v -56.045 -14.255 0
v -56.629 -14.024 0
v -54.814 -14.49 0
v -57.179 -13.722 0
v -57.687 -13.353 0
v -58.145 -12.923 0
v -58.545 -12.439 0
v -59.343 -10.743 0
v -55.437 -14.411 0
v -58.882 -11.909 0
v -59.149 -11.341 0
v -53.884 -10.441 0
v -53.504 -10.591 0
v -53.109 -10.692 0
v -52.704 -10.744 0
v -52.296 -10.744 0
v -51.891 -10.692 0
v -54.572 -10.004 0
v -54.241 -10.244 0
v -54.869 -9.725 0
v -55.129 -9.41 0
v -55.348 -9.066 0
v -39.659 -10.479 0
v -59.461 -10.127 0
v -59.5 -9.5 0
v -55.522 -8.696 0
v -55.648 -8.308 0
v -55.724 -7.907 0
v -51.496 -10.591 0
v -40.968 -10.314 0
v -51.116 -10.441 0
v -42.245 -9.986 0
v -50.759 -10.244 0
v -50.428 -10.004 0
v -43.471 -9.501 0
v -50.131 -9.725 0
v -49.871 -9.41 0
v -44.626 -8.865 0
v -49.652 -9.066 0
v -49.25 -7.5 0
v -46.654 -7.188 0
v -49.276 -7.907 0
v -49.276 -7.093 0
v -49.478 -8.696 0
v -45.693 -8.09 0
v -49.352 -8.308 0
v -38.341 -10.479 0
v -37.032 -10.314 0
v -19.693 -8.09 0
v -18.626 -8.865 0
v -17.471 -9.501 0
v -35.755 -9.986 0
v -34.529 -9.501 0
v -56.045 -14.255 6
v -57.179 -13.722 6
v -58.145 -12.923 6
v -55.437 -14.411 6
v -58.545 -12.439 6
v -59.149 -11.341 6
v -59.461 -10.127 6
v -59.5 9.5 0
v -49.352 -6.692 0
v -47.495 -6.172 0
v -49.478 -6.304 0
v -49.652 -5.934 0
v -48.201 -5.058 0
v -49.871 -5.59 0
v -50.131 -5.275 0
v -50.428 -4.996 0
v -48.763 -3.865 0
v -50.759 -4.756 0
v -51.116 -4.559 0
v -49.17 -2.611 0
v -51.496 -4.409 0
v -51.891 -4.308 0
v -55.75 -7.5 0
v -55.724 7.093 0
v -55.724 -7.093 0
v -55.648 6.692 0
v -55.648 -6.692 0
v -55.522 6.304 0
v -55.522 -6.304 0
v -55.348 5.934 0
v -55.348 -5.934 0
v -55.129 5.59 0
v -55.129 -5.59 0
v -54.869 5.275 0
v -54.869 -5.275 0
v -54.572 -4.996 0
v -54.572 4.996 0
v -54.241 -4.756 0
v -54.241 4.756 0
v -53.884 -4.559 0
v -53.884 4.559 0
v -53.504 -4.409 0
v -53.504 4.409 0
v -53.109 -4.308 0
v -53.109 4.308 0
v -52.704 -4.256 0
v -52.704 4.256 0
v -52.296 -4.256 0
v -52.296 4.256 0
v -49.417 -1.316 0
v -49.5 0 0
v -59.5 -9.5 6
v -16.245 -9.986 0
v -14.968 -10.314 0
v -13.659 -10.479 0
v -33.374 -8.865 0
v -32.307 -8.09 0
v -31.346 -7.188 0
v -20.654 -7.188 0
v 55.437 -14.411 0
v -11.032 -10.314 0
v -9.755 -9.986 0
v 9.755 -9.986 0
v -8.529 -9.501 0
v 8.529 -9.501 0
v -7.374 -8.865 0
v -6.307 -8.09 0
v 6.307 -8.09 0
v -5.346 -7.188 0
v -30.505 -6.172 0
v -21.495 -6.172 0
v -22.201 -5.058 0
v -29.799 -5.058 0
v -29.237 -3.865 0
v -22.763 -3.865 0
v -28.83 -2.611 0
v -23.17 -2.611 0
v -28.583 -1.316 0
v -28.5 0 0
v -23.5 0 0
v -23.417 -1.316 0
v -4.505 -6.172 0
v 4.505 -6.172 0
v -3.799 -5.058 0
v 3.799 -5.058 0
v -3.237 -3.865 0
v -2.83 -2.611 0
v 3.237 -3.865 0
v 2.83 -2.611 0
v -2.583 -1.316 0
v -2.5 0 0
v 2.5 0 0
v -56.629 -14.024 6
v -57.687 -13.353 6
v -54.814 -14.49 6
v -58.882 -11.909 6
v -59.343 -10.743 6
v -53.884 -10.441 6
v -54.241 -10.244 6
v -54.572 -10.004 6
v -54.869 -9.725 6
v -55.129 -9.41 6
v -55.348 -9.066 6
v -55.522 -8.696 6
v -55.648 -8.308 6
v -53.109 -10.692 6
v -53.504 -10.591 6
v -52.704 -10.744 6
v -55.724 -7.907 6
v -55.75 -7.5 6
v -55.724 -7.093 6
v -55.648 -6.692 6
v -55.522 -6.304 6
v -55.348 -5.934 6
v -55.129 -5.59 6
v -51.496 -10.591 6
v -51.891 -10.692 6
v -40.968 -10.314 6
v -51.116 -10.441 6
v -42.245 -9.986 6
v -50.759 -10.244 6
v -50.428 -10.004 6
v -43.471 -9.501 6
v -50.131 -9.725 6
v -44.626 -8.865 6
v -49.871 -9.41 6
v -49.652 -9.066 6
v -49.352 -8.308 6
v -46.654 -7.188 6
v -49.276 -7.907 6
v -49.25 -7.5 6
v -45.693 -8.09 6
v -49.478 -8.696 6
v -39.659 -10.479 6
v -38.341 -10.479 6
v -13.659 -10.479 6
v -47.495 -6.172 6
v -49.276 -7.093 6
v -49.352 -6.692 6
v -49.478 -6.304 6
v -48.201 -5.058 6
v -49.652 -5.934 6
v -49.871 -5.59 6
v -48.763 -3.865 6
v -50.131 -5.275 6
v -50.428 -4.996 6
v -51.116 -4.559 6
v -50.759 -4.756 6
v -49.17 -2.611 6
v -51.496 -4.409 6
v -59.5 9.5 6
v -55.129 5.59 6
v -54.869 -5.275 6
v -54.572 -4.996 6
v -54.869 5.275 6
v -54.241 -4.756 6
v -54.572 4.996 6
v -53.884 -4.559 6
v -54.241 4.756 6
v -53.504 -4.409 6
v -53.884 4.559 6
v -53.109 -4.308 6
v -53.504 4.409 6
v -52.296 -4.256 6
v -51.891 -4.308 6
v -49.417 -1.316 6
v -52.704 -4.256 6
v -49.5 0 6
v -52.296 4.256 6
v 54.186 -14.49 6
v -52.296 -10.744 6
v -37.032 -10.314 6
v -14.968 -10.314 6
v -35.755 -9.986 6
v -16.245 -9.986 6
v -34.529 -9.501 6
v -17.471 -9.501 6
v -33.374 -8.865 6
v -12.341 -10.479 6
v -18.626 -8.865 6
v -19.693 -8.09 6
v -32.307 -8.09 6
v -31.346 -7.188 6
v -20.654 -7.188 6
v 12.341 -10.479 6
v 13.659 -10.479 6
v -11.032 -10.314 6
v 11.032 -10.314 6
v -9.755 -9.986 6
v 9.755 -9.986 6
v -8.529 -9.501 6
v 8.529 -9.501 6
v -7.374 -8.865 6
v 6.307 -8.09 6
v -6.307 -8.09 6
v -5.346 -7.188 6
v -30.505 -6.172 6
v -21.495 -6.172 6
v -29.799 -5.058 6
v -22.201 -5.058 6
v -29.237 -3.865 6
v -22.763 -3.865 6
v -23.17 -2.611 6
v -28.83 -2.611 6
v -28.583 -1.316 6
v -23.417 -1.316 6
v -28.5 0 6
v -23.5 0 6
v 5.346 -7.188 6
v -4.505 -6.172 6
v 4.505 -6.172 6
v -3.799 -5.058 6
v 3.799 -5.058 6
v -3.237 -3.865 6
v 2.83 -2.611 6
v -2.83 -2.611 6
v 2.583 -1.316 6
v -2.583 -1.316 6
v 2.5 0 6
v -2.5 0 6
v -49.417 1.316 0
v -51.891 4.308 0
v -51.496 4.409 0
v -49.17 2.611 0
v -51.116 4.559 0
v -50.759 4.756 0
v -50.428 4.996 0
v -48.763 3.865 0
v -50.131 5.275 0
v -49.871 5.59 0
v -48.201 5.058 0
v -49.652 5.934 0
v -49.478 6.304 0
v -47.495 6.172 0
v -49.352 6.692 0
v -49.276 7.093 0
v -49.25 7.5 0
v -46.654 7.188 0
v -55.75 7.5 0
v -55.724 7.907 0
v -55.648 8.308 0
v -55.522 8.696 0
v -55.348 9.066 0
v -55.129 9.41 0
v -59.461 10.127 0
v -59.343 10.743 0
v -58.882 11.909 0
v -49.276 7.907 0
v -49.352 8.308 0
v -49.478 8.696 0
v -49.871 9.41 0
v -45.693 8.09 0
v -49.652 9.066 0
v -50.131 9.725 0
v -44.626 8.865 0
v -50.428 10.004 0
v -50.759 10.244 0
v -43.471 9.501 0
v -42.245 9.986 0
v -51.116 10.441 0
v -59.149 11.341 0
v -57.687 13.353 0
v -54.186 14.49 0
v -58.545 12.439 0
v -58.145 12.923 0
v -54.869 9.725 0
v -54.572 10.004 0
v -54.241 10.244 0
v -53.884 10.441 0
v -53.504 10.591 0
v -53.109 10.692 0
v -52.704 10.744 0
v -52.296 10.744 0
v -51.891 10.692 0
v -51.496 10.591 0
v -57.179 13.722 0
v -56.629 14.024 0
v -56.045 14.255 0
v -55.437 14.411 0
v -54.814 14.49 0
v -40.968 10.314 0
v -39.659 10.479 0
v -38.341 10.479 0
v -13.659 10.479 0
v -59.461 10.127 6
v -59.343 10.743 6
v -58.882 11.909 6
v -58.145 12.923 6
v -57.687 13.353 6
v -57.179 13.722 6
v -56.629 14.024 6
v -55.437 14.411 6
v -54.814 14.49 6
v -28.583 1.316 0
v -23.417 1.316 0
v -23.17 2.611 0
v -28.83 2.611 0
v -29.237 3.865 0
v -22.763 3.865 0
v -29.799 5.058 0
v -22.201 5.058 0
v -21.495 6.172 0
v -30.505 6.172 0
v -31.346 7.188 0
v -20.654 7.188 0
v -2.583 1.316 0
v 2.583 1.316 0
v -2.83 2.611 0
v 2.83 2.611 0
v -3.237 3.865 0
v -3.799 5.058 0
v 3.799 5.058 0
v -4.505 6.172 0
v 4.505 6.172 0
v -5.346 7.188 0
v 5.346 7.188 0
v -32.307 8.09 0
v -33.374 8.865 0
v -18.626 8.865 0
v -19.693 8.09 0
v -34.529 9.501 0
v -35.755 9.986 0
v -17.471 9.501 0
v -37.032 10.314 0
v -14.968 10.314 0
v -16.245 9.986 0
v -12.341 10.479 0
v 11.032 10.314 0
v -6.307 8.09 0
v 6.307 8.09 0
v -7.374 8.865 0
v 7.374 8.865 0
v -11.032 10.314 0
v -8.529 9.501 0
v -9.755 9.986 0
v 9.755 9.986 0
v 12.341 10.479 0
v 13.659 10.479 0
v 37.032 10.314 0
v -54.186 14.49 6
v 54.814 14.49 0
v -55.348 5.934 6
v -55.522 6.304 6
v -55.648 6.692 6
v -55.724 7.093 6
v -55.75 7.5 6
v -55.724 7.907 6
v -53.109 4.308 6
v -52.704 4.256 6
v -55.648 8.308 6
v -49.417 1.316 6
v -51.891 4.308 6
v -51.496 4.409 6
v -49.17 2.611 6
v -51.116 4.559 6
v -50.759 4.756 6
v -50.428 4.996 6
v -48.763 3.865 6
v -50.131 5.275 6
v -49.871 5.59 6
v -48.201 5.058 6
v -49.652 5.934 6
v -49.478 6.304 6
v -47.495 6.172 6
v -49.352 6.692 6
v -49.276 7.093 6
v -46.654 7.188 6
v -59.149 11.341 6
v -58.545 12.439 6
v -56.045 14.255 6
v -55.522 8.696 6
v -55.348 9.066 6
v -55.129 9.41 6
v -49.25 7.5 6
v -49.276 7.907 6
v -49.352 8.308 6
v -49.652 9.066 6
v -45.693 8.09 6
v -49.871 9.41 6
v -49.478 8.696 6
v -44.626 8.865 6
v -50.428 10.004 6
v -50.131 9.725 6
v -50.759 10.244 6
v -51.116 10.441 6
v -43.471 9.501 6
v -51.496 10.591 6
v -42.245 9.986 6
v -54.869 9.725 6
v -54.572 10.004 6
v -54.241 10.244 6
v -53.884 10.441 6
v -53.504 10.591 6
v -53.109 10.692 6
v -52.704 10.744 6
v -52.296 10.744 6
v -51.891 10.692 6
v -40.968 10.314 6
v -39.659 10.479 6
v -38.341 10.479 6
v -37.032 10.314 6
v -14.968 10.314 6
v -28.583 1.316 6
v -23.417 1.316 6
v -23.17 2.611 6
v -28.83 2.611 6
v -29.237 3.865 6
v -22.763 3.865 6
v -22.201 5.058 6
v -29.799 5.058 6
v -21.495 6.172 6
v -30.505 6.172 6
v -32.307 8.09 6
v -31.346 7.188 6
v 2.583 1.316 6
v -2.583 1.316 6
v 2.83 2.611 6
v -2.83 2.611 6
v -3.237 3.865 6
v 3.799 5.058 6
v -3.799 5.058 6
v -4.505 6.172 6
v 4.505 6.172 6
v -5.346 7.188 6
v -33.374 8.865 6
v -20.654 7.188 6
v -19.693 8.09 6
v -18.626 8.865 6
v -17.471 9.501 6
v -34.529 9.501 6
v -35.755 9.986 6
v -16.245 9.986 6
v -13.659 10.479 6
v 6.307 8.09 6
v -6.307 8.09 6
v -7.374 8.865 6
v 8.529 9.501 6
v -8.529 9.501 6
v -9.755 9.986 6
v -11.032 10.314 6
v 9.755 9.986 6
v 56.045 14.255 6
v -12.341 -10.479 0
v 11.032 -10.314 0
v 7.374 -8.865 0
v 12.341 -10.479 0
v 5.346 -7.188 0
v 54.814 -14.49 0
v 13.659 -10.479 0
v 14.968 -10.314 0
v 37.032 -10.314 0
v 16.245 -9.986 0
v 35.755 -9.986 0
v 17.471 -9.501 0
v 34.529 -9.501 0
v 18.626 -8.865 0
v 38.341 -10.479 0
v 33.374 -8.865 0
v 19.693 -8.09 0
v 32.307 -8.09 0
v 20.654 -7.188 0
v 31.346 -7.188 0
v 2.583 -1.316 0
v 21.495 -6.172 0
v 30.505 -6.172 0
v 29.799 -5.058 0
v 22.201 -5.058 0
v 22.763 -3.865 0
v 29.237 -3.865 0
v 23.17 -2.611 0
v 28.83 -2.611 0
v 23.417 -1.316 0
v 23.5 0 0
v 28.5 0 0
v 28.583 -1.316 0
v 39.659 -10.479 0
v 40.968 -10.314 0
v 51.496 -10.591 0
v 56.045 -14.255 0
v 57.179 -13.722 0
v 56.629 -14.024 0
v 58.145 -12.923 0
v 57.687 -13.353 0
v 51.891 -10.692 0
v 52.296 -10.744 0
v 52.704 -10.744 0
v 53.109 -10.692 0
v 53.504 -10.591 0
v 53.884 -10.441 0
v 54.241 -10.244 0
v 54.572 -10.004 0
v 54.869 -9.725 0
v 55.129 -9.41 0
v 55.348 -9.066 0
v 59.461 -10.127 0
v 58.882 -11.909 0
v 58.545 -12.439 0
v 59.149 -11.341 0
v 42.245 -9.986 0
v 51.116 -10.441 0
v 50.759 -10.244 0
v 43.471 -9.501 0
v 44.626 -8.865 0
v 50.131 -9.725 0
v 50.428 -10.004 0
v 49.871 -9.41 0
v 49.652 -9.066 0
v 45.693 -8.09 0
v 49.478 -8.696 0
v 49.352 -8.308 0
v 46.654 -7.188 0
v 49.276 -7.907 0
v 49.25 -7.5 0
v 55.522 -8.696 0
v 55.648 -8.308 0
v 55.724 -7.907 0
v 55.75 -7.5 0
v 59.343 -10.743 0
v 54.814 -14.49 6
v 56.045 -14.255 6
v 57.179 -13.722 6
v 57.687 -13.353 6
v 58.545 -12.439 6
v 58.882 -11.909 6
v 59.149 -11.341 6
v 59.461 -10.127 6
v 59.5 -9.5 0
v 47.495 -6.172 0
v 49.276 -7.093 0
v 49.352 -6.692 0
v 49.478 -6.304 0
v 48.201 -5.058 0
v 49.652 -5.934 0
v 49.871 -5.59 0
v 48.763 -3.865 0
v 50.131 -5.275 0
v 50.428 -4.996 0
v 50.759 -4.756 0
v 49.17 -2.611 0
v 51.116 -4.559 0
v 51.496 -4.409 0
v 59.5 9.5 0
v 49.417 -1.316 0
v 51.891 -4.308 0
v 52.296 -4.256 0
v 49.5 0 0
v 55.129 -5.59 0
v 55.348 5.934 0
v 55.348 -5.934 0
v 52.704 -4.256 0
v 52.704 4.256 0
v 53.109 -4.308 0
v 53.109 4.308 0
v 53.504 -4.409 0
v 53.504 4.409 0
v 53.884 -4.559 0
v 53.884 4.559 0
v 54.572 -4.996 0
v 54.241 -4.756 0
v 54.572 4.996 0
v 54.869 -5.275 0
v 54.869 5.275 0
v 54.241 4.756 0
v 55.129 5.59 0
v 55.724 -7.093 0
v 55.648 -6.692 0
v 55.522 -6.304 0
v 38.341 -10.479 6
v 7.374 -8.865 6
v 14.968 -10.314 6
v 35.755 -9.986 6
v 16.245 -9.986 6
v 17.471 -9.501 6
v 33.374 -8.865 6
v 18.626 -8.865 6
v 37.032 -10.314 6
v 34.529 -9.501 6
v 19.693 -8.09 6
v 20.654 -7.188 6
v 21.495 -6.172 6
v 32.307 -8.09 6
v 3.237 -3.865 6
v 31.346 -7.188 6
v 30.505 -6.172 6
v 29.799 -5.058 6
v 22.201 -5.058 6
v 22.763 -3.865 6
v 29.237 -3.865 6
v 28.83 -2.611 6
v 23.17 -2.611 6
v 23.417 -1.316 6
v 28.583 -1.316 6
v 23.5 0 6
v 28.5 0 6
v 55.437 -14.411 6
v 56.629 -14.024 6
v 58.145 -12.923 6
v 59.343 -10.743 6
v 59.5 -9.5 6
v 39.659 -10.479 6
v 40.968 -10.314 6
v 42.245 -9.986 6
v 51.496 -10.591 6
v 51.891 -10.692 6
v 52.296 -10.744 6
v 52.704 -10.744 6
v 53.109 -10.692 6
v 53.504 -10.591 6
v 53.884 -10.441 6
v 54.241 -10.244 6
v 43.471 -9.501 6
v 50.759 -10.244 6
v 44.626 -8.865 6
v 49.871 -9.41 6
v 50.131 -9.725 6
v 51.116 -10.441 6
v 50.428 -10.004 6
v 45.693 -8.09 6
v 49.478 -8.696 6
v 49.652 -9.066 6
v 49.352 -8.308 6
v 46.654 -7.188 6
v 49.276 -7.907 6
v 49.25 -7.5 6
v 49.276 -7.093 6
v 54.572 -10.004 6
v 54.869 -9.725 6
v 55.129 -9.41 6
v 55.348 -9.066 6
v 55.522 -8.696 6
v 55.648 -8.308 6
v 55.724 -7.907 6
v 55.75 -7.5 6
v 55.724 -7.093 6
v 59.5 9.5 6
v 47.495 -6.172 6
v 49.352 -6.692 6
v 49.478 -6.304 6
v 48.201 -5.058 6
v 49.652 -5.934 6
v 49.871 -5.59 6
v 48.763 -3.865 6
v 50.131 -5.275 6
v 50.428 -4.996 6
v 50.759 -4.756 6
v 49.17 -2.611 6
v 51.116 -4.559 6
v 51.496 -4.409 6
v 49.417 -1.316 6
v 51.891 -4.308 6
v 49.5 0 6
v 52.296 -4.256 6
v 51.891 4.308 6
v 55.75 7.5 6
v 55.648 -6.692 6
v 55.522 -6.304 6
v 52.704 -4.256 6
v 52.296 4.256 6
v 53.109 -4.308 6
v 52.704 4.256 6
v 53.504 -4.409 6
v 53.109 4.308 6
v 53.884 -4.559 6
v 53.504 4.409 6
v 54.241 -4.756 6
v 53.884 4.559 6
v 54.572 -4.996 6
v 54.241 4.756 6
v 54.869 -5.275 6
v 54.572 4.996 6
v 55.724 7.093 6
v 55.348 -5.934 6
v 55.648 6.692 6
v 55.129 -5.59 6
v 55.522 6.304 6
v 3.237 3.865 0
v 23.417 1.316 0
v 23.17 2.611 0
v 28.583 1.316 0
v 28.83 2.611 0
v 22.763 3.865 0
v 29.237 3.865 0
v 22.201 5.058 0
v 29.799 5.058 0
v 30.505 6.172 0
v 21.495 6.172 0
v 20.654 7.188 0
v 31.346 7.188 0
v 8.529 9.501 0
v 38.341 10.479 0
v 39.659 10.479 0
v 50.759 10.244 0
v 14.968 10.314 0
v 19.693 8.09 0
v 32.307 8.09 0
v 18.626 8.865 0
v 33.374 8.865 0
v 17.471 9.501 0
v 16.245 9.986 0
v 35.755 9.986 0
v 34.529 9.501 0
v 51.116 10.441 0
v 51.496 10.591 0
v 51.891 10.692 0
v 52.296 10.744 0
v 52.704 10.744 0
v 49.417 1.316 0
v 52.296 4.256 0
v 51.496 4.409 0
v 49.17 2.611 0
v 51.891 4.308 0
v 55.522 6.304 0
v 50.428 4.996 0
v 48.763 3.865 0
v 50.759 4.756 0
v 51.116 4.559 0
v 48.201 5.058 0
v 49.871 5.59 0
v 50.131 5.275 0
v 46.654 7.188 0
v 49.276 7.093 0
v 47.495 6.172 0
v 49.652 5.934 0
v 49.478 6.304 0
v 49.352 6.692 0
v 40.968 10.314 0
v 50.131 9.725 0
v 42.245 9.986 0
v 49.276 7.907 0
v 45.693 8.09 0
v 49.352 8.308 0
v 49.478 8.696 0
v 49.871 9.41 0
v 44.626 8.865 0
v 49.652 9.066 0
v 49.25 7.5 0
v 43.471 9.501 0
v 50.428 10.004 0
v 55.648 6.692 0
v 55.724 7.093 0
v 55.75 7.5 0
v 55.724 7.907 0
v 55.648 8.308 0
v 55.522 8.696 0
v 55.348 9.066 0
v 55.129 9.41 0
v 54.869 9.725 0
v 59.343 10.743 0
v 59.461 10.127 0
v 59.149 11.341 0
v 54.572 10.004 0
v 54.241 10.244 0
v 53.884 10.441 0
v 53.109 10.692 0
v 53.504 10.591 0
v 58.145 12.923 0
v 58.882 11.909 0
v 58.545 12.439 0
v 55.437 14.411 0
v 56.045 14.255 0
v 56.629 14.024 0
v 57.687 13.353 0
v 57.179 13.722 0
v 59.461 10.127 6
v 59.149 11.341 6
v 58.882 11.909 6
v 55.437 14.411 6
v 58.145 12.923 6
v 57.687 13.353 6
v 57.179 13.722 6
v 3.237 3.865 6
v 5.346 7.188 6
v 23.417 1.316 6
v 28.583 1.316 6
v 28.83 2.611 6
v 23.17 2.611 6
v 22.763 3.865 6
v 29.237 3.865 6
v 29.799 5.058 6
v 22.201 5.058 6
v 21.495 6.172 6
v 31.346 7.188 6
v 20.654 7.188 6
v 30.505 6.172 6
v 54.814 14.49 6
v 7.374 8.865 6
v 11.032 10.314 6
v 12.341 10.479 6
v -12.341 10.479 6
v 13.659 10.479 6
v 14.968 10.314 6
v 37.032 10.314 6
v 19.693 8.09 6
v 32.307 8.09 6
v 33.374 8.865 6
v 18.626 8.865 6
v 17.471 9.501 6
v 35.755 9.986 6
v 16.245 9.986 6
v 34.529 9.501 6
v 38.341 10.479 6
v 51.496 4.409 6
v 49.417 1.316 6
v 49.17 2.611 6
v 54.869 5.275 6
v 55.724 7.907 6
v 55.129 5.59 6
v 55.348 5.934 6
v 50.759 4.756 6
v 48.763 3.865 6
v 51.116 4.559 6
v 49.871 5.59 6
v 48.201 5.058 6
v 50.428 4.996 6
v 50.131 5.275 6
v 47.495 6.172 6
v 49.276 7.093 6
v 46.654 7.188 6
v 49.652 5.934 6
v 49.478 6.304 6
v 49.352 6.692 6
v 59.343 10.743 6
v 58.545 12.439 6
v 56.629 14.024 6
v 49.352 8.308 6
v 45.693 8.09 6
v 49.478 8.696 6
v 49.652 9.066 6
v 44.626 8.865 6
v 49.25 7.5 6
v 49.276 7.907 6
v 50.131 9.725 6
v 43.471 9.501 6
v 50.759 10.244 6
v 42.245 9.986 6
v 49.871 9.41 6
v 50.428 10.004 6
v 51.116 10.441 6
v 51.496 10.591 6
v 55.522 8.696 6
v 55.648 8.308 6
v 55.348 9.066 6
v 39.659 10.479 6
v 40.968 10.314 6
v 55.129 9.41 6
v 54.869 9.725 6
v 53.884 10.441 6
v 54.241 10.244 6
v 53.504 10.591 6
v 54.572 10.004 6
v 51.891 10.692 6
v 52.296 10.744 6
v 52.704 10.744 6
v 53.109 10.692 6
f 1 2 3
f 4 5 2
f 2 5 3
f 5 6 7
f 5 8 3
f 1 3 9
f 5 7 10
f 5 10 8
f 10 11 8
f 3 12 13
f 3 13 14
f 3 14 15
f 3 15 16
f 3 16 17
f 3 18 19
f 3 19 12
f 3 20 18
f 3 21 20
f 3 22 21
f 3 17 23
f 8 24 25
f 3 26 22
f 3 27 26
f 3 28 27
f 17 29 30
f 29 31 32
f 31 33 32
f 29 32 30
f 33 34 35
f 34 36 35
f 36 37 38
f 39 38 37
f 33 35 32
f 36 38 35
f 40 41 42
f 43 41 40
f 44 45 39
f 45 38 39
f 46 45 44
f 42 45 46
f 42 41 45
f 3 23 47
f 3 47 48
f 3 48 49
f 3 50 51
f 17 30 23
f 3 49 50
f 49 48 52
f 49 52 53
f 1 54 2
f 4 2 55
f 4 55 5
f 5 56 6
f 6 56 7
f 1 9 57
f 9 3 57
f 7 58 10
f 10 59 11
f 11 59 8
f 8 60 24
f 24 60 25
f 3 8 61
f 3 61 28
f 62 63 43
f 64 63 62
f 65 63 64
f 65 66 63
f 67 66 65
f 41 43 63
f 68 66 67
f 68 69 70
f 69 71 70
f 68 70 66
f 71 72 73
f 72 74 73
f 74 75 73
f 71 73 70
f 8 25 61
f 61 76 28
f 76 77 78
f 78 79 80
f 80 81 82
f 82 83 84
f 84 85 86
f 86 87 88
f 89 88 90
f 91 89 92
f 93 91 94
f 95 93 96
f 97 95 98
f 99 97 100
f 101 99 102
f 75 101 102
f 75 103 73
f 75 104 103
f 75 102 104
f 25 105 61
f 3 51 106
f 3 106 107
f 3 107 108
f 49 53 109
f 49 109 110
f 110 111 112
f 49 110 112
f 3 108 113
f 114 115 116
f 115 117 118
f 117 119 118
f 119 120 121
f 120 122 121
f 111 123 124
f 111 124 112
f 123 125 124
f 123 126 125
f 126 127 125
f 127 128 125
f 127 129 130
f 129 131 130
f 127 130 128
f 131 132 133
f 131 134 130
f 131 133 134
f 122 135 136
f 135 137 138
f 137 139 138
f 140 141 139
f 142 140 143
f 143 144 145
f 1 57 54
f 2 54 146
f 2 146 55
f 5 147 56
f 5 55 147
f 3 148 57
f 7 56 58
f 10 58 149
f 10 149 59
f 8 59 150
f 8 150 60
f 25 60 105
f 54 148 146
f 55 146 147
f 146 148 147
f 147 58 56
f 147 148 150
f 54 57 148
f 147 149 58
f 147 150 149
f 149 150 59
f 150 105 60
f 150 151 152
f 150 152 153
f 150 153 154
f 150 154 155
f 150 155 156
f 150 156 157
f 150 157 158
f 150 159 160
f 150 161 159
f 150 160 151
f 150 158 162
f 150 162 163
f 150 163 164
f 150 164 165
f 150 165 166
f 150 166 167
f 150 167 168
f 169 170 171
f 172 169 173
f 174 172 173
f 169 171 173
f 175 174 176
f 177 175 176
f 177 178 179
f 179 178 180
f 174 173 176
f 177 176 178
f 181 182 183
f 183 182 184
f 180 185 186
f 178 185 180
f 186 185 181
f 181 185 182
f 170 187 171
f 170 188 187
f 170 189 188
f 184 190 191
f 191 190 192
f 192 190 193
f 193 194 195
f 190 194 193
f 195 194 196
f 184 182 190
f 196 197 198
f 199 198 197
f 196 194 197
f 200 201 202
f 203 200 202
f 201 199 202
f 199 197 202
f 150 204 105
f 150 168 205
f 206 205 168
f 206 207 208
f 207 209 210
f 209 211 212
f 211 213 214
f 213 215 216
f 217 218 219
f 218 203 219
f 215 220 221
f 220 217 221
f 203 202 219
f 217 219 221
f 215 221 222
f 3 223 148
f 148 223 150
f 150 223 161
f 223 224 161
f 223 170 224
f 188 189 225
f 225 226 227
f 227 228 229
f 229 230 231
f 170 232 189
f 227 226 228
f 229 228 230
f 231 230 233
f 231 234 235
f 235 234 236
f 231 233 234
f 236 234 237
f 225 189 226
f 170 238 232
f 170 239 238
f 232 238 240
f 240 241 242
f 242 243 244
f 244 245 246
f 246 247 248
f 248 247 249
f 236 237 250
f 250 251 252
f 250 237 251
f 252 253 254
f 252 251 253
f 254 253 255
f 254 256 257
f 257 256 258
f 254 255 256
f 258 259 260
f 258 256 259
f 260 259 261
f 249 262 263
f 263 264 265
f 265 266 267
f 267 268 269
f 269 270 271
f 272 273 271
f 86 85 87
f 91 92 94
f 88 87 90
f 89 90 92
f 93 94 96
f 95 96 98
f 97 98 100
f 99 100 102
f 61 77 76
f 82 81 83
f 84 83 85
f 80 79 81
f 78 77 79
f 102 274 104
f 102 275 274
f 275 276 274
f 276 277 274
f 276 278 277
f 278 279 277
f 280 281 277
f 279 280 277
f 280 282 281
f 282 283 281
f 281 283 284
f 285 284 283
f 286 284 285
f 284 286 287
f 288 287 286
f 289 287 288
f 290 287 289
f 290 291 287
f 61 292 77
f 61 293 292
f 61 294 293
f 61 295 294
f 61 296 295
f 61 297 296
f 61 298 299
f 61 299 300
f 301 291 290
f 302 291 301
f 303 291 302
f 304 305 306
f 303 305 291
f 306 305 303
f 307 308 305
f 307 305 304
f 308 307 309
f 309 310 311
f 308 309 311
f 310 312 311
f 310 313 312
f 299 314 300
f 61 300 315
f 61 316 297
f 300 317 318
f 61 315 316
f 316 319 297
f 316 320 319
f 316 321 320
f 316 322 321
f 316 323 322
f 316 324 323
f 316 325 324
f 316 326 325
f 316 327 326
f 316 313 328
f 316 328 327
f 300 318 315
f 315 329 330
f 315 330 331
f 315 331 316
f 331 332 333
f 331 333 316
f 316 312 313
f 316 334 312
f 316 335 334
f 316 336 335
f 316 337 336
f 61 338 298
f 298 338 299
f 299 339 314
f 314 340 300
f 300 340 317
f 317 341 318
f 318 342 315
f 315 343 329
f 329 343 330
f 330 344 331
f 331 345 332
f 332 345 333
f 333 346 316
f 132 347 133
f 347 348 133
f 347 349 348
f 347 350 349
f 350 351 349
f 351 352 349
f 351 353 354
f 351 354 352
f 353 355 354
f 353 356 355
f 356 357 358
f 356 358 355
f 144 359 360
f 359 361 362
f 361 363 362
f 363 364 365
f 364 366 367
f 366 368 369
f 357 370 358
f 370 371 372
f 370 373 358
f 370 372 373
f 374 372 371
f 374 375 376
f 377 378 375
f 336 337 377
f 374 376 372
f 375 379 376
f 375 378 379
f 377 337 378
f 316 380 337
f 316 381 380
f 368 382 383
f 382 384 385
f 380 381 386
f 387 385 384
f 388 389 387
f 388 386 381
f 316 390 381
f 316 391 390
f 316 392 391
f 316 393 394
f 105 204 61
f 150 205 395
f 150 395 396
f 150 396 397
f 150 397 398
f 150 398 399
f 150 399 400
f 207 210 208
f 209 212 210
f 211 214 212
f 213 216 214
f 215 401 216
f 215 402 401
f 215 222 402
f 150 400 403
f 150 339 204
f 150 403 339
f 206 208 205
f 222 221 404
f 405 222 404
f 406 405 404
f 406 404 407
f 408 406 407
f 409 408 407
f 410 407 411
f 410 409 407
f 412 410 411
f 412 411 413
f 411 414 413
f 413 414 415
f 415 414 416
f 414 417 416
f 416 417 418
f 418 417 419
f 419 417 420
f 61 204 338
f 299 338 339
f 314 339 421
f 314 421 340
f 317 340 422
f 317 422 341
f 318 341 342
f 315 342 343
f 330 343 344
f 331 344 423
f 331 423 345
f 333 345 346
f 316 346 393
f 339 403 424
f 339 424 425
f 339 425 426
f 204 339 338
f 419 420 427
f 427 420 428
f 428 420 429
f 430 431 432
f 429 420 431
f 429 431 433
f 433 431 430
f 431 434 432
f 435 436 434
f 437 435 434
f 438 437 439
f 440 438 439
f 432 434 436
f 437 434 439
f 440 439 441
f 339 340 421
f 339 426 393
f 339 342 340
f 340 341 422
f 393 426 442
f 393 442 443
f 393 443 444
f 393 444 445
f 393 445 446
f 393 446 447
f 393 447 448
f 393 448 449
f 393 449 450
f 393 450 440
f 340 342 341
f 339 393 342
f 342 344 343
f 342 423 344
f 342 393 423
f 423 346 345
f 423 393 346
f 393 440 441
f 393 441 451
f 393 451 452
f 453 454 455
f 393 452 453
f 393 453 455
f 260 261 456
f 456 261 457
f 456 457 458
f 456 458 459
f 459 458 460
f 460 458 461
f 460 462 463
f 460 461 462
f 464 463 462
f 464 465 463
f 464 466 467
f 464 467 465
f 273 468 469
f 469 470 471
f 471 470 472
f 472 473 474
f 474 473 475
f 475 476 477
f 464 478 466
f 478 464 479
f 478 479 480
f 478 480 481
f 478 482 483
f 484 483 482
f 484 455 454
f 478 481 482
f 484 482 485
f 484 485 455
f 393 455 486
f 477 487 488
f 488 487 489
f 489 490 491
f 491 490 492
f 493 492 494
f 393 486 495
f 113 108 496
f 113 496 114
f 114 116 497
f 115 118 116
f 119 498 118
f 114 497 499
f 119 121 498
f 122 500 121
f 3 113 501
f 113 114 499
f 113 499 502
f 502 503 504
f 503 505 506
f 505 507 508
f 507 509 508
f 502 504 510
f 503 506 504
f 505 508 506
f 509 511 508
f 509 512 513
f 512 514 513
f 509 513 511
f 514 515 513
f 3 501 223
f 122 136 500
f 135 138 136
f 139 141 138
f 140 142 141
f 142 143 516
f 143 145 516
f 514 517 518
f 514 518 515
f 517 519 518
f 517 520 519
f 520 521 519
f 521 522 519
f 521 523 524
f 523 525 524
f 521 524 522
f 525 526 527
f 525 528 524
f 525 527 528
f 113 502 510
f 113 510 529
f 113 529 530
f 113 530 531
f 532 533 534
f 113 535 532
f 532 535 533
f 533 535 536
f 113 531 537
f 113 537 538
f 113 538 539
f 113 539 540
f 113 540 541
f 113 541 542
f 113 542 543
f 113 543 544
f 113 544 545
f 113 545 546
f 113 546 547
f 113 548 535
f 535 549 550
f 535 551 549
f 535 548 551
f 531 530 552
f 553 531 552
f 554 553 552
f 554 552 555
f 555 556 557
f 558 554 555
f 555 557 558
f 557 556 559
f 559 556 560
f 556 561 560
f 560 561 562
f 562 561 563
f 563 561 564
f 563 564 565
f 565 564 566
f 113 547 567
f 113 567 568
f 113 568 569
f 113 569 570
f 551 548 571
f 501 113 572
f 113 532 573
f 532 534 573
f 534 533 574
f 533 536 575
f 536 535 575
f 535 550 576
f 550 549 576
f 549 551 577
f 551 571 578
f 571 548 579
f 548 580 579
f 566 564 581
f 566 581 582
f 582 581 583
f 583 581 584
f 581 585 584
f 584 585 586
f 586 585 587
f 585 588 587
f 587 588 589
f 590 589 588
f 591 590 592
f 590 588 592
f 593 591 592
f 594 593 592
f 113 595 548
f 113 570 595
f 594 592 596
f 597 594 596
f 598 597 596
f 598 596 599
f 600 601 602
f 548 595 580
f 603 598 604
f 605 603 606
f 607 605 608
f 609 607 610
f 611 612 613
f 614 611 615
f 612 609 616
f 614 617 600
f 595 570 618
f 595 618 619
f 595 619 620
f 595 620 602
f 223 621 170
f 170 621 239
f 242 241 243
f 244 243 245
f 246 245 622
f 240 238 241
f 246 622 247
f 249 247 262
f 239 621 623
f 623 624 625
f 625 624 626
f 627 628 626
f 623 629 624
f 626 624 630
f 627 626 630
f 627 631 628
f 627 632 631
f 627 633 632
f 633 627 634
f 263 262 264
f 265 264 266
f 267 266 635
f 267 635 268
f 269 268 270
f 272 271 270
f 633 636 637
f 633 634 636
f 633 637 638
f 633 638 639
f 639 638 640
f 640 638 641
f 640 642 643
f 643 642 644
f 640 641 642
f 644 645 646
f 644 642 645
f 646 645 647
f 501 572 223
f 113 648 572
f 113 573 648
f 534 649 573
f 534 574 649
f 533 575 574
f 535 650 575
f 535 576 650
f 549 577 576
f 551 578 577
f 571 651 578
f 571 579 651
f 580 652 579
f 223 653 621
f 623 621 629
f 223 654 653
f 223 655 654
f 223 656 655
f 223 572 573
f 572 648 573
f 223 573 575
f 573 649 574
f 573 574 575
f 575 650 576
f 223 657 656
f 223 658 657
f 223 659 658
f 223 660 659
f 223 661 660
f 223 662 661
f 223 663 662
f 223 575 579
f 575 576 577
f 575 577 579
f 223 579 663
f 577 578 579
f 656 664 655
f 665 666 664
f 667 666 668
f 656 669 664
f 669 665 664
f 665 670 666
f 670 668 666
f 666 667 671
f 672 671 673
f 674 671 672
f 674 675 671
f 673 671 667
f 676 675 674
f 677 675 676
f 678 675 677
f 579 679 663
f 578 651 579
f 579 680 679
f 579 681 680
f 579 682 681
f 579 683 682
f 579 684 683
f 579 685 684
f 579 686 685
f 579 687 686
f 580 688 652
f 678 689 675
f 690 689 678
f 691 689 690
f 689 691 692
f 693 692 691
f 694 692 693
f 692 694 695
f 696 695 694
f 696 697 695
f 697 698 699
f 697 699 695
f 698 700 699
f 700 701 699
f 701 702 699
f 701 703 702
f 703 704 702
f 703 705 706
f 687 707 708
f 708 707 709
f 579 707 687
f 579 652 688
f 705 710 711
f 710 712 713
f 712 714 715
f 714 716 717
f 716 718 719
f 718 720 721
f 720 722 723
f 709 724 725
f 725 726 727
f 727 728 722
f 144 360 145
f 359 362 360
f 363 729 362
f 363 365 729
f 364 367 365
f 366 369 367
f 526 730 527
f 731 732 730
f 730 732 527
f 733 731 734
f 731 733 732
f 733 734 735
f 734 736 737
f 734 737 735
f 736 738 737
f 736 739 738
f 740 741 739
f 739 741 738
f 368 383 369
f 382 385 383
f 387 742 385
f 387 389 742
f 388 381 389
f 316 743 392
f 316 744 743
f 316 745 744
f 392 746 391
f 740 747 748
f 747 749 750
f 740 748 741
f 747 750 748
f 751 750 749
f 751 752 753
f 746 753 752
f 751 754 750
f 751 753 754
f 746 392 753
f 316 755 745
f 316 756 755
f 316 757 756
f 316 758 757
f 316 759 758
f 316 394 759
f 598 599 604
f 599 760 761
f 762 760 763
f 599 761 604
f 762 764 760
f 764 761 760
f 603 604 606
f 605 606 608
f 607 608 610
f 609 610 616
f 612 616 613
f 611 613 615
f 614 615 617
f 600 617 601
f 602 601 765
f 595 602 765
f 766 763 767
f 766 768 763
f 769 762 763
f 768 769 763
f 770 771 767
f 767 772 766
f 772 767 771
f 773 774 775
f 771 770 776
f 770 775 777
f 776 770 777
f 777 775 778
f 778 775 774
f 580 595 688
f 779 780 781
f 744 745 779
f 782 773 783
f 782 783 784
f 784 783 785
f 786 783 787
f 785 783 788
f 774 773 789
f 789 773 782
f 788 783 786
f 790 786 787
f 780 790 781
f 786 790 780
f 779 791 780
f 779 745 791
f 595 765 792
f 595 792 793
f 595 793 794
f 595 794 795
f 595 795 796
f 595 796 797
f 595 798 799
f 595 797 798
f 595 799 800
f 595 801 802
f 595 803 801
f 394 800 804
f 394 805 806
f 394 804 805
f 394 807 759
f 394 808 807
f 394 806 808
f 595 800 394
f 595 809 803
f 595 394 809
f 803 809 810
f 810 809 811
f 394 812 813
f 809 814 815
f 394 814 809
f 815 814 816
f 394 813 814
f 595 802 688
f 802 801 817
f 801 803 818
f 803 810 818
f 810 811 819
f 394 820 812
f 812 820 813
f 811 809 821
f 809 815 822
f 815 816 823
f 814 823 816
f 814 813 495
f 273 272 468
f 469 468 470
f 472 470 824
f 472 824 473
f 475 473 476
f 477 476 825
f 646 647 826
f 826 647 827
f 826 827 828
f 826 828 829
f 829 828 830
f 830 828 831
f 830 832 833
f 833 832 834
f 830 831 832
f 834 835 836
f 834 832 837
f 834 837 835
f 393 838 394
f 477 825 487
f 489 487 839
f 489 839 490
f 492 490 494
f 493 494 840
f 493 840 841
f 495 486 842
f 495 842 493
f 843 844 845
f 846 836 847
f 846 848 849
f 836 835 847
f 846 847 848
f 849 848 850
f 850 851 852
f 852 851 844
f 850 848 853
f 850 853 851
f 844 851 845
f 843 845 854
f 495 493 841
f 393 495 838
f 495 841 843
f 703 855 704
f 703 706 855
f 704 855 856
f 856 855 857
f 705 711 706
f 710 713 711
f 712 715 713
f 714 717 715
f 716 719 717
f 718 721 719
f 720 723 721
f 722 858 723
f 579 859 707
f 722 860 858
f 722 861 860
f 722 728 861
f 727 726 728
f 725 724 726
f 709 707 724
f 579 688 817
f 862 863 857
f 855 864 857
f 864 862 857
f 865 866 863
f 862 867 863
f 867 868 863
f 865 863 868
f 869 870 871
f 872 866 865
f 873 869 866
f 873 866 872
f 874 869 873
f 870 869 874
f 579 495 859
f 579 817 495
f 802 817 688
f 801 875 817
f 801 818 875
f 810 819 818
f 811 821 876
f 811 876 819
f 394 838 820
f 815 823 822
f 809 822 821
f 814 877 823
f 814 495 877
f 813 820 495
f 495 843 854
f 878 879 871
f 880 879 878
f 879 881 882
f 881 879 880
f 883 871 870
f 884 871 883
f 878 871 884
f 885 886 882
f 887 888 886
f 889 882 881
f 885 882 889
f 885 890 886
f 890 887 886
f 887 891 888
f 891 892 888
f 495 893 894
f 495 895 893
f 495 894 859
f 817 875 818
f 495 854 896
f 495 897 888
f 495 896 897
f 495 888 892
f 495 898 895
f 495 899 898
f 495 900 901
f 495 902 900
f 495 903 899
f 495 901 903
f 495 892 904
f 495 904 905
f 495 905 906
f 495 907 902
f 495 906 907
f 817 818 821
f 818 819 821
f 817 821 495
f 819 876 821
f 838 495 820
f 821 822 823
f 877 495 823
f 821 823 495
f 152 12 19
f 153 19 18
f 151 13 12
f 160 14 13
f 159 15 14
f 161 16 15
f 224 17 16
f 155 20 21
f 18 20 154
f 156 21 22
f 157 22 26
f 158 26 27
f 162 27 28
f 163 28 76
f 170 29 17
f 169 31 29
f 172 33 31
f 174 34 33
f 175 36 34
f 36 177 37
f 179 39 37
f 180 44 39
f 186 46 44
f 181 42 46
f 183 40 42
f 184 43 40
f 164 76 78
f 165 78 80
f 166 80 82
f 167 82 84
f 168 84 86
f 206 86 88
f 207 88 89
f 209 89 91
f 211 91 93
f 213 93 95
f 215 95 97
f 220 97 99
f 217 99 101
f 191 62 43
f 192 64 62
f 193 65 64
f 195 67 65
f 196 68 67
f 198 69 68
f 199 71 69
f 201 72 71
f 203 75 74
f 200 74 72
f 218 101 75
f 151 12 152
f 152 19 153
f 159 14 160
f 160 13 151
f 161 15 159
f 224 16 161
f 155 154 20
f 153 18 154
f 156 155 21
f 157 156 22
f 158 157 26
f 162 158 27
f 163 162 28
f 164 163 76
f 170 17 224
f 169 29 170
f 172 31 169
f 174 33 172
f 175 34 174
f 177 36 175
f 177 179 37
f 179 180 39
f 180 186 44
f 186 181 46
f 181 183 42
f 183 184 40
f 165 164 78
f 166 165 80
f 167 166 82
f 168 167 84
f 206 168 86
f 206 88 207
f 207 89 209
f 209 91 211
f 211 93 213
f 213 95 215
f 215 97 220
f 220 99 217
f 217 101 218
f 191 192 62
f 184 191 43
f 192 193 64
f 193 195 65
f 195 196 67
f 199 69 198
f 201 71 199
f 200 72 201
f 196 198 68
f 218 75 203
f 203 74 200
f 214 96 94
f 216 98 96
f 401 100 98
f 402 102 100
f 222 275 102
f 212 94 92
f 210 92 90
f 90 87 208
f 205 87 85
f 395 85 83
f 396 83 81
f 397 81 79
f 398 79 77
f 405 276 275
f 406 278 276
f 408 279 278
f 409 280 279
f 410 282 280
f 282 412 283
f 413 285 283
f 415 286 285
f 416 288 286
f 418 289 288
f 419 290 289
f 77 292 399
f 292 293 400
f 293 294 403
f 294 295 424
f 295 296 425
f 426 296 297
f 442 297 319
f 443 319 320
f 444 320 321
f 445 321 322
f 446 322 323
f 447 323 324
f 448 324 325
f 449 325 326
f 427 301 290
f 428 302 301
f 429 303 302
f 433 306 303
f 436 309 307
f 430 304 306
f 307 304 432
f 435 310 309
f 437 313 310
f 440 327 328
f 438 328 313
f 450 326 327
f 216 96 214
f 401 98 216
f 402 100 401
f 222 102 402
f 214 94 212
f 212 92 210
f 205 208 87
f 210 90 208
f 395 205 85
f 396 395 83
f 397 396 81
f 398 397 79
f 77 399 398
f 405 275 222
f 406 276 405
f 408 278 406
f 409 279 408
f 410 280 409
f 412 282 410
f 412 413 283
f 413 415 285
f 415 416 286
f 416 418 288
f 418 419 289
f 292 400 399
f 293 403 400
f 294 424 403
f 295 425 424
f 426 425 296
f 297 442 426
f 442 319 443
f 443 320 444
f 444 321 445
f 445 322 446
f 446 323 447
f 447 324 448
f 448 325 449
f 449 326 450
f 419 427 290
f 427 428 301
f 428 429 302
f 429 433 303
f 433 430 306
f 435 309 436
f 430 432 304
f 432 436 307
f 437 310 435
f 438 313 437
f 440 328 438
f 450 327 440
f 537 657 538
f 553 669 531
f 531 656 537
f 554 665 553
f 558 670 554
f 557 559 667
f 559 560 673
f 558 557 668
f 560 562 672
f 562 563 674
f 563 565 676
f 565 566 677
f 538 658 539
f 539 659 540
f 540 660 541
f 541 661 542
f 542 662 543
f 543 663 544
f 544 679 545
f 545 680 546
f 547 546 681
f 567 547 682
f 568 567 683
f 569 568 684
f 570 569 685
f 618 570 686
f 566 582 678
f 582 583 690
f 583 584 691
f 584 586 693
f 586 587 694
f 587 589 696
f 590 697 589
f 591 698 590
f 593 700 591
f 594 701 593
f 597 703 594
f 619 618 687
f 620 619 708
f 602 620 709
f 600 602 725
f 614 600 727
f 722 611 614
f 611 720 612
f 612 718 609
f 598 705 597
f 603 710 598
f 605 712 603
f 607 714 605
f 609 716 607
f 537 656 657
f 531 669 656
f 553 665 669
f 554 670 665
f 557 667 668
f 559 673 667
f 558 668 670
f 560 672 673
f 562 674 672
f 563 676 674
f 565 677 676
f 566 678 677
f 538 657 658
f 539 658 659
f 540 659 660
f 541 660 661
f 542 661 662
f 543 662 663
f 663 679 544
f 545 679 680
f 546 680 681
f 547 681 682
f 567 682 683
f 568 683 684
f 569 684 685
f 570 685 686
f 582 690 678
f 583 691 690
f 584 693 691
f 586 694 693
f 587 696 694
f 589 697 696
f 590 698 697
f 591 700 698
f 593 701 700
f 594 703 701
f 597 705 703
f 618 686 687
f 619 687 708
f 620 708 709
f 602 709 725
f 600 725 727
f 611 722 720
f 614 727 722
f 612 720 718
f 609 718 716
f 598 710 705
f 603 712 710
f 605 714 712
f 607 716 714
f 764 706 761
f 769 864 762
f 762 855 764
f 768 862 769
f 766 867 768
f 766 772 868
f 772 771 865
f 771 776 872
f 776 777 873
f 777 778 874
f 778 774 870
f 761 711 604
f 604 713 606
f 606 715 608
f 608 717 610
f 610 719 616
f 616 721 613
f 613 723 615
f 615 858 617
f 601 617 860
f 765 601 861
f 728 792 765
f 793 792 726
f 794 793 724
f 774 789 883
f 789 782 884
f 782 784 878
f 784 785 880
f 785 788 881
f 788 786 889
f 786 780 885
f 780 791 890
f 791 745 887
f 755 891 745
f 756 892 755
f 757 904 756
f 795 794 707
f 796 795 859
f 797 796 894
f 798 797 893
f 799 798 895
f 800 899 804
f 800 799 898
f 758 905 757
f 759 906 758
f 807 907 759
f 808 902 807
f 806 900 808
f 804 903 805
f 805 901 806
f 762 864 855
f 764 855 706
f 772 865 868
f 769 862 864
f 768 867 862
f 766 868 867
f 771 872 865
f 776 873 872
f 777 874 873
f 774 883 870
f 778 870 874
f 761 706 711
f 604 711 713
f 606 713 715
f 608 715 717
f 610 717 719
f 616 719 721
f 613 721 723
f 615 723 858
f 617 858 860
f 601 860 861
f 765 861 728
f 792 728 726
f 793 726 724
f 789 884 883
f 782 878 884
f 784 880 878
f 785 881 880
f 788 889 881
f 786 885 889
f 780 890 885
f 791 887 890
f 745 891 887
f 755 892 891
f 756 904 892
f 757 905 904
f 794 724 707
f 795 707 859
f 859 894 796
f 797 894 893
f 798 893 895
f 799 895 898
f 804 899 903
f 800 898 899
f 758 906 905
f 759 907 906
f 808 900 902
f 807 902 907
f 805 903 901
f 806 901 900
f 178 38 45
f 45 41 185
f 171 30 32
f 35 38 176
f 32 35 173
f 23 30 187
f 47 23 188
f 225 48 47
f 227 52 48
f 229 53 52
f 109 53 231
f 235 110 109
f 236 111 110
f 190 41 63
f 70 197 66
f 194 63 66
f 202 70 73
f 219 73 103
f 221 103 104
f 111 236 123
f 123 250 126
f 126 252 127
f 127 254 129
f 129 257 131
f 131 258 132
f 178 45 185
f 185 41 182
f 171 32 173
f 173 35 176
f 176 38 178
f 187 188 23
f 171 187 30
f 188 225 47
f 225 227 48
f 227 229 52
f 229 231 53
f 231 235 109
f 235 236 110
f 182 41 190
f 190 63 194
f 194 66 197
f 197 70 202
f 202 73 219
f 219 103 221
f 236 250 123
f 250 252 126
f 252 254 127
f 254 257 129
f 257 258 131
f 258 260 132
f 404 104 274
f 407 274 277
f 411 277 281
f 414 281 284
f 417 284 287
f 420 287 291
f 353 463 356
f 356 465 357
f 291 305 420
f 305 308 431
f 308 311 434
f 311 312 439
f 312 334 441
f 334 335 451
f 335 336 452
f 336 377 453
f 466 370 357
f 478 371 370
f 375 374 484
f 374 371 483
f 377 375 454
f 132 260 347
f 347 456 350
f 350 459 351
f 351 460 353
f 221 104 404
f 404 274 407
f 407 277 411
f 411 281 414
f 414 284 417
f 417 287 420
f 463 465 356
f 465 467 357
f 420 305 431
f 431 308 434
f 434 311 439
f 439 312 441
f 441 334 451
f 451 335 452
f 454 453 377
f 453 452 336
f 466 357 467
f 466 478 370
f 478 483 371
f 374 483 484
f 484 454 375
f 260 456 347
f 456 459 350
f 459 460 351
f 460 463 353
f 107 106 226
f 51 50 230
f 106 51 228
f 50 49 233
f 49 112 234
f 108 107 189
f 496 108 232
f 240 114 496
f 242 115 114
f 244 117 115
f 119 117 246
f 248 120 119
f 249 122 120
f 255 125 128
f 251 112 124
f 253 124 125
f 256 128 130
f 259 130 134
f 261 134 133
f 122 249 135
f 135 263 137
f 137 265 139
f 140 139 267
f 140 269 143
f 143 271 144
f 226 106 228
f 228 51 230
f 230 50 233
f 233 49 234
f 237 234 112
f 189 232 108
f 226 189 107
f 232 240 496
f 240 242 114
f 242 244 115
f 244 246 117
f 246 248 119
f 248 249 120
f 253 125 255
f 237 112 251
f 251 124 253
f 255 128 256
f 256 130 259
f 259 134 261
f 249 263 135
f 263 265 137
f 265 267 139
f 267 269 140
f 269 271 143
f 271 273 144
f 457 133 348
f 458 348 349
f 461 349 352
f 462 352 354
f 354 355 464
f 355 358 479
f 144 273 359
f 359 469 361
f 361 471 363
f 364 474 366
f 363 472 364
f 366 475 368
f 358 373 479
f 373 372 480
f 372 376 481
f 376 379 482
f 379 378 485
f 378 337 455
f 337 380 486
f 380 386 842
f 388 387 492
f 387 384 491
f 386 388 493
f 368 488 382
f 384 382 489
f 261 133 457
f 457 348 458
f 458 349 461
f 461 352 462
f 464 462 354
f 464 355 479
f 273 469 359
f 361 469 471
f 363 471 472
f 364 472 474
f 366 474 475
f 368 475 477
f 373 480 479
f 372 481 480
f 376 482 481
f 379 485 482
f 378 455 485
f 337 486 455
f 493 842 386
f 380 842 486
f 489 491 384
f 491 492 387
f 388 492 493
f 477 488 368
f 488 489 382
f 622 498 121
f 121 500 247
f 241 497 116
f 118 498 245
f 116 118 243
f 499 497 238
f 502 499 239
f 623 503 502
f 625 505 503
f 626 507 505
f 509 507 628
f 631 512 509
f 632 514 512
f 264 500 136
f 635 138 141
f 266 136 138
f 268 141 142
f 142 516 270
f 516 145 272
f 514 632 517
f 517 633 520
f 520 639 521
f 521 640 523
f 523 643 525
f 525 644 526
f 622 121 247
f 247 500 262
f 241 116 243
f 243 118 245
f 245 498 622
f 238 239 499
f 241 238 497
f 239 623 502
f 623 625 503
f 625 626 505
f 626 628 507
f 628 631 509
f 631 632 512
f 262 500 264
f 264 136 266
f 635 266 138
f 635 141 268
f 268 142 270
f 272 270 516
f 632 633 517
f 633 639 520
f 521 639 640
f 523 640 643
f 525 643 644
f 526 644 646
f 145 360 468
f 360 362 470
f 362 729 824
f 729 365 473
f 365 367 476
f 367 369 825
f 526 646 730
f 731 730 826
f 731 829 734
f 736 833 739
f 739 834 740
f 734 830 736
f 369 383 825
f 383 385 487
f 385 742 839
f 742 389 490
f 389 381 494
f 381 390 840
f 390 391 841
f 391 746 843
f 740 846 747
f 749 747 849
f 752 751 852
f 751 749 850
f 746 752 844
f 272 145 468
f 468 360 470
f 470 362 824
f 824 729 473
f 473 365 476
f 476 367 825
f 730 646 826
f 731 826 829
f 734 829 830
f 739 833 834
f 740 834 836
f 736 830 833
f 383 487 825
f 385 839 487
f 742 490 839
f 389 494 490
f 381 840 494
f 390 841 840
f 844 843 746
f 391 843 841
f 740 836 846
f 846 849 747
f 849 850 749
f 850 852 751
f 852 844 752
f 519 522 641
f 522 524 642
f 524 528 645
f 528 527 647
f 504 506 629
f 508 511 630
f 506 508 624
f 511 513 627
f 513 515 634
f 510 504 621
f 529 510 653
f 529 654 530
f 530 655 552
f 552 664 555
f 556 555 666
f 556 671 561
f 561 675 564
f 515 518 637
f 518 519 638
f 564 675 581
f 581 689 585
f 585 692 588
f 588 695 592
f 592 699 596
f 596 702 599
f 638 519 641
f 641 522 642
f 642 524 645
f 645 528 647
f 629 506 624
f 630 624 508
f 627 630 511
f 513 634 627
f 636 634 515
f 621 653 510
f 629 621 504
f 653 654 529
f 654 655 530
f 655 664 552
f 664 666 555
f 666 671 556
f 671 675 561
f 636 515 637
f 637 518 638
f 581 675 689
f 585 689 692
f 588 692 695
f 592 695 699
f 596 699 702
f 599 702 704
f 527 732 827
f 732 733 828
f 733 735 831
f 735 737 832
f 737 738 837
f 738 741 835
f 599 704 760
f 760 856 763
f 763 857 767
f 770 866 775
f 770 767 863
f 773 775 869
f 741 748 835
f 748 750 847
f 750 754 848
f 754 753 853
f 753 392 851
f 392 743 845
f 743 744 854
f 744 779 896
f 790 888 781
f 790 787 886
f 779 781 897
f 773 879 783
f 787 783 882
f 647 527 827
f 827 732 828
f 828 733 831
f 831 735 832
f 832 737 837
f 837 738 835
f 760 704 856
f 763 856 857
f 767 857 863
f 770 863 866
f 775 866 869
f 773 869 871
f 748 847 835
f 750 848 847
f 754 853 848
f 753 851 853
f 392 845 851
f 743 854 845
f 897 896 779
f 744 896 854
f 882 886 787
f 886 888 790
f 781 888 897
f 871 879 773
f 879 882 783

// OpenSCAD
$fn = 50;

difference() {
	union() {
		hull() {
			translate(v = [-54.5, 9.5, 0]) {
				cylinder(h = 6, r = 5);
			}
			translate(v = [54.5, 9.5, 0]) {
				cylinder(h = 6, r = 5);
			}
			translate(v = [-54.5, -9.5, 0]) {
				cylinder(h = 6, r = 5);
			}
			translate(v = [54.5, -9.5, 0]) {
				cylinder(h = 6, r = 5);
			}
		}
	}
	union() {
		translate(v = [-52.5, -7.5, -100.0]) {
			cylinder(h = 200, r = 3.25);
		}
		translate(v = [-52.5, 7.5, -100.0]) {
			cylinder(h = 200, r = 3.25);
		}
		translate(v = [52.5, -7.5, -100.0]) {
			cylinder(h = 200, r = 3.25);
		}
		translate(v = [52.5, 7.5, -100.0]) {
			cylinder(h = 200, r = 3.25);
		}
		translate(v = [-52.5, -7.5, -100.0]) {
			cylinder(h = 200, r = 1.8);
		}
		translate(v = [-52.5, 7.5, -100.0]) {
			cylinder(h = 200, r = 1.8);
		}
		translate(v = [52.5, -7.5, -100.0]) {
			cylinder(h = 200, r = 1.8);
		}
		translate(v = [52.5, 7.5, -100.0]) {
			cylinder(h = 200, r = 1.8);
		}
		translate(v = [-39.0, 0, 0.0]) {
			cylinder(h = 6, r = 10.5);
		}
		translate(v = [-13.0, 0, 0.0]) {
			cylinder(h = 6, r = 10.5);
		}
		translate(v = [13.0, 0, 0.0]) {
			cylinder(h = 6, r = 10.5);
		}
		translate(v = [39.0, 0, 0.0]) {
			cylinder(h = 6, r = 10.5);
		}
	}
}
